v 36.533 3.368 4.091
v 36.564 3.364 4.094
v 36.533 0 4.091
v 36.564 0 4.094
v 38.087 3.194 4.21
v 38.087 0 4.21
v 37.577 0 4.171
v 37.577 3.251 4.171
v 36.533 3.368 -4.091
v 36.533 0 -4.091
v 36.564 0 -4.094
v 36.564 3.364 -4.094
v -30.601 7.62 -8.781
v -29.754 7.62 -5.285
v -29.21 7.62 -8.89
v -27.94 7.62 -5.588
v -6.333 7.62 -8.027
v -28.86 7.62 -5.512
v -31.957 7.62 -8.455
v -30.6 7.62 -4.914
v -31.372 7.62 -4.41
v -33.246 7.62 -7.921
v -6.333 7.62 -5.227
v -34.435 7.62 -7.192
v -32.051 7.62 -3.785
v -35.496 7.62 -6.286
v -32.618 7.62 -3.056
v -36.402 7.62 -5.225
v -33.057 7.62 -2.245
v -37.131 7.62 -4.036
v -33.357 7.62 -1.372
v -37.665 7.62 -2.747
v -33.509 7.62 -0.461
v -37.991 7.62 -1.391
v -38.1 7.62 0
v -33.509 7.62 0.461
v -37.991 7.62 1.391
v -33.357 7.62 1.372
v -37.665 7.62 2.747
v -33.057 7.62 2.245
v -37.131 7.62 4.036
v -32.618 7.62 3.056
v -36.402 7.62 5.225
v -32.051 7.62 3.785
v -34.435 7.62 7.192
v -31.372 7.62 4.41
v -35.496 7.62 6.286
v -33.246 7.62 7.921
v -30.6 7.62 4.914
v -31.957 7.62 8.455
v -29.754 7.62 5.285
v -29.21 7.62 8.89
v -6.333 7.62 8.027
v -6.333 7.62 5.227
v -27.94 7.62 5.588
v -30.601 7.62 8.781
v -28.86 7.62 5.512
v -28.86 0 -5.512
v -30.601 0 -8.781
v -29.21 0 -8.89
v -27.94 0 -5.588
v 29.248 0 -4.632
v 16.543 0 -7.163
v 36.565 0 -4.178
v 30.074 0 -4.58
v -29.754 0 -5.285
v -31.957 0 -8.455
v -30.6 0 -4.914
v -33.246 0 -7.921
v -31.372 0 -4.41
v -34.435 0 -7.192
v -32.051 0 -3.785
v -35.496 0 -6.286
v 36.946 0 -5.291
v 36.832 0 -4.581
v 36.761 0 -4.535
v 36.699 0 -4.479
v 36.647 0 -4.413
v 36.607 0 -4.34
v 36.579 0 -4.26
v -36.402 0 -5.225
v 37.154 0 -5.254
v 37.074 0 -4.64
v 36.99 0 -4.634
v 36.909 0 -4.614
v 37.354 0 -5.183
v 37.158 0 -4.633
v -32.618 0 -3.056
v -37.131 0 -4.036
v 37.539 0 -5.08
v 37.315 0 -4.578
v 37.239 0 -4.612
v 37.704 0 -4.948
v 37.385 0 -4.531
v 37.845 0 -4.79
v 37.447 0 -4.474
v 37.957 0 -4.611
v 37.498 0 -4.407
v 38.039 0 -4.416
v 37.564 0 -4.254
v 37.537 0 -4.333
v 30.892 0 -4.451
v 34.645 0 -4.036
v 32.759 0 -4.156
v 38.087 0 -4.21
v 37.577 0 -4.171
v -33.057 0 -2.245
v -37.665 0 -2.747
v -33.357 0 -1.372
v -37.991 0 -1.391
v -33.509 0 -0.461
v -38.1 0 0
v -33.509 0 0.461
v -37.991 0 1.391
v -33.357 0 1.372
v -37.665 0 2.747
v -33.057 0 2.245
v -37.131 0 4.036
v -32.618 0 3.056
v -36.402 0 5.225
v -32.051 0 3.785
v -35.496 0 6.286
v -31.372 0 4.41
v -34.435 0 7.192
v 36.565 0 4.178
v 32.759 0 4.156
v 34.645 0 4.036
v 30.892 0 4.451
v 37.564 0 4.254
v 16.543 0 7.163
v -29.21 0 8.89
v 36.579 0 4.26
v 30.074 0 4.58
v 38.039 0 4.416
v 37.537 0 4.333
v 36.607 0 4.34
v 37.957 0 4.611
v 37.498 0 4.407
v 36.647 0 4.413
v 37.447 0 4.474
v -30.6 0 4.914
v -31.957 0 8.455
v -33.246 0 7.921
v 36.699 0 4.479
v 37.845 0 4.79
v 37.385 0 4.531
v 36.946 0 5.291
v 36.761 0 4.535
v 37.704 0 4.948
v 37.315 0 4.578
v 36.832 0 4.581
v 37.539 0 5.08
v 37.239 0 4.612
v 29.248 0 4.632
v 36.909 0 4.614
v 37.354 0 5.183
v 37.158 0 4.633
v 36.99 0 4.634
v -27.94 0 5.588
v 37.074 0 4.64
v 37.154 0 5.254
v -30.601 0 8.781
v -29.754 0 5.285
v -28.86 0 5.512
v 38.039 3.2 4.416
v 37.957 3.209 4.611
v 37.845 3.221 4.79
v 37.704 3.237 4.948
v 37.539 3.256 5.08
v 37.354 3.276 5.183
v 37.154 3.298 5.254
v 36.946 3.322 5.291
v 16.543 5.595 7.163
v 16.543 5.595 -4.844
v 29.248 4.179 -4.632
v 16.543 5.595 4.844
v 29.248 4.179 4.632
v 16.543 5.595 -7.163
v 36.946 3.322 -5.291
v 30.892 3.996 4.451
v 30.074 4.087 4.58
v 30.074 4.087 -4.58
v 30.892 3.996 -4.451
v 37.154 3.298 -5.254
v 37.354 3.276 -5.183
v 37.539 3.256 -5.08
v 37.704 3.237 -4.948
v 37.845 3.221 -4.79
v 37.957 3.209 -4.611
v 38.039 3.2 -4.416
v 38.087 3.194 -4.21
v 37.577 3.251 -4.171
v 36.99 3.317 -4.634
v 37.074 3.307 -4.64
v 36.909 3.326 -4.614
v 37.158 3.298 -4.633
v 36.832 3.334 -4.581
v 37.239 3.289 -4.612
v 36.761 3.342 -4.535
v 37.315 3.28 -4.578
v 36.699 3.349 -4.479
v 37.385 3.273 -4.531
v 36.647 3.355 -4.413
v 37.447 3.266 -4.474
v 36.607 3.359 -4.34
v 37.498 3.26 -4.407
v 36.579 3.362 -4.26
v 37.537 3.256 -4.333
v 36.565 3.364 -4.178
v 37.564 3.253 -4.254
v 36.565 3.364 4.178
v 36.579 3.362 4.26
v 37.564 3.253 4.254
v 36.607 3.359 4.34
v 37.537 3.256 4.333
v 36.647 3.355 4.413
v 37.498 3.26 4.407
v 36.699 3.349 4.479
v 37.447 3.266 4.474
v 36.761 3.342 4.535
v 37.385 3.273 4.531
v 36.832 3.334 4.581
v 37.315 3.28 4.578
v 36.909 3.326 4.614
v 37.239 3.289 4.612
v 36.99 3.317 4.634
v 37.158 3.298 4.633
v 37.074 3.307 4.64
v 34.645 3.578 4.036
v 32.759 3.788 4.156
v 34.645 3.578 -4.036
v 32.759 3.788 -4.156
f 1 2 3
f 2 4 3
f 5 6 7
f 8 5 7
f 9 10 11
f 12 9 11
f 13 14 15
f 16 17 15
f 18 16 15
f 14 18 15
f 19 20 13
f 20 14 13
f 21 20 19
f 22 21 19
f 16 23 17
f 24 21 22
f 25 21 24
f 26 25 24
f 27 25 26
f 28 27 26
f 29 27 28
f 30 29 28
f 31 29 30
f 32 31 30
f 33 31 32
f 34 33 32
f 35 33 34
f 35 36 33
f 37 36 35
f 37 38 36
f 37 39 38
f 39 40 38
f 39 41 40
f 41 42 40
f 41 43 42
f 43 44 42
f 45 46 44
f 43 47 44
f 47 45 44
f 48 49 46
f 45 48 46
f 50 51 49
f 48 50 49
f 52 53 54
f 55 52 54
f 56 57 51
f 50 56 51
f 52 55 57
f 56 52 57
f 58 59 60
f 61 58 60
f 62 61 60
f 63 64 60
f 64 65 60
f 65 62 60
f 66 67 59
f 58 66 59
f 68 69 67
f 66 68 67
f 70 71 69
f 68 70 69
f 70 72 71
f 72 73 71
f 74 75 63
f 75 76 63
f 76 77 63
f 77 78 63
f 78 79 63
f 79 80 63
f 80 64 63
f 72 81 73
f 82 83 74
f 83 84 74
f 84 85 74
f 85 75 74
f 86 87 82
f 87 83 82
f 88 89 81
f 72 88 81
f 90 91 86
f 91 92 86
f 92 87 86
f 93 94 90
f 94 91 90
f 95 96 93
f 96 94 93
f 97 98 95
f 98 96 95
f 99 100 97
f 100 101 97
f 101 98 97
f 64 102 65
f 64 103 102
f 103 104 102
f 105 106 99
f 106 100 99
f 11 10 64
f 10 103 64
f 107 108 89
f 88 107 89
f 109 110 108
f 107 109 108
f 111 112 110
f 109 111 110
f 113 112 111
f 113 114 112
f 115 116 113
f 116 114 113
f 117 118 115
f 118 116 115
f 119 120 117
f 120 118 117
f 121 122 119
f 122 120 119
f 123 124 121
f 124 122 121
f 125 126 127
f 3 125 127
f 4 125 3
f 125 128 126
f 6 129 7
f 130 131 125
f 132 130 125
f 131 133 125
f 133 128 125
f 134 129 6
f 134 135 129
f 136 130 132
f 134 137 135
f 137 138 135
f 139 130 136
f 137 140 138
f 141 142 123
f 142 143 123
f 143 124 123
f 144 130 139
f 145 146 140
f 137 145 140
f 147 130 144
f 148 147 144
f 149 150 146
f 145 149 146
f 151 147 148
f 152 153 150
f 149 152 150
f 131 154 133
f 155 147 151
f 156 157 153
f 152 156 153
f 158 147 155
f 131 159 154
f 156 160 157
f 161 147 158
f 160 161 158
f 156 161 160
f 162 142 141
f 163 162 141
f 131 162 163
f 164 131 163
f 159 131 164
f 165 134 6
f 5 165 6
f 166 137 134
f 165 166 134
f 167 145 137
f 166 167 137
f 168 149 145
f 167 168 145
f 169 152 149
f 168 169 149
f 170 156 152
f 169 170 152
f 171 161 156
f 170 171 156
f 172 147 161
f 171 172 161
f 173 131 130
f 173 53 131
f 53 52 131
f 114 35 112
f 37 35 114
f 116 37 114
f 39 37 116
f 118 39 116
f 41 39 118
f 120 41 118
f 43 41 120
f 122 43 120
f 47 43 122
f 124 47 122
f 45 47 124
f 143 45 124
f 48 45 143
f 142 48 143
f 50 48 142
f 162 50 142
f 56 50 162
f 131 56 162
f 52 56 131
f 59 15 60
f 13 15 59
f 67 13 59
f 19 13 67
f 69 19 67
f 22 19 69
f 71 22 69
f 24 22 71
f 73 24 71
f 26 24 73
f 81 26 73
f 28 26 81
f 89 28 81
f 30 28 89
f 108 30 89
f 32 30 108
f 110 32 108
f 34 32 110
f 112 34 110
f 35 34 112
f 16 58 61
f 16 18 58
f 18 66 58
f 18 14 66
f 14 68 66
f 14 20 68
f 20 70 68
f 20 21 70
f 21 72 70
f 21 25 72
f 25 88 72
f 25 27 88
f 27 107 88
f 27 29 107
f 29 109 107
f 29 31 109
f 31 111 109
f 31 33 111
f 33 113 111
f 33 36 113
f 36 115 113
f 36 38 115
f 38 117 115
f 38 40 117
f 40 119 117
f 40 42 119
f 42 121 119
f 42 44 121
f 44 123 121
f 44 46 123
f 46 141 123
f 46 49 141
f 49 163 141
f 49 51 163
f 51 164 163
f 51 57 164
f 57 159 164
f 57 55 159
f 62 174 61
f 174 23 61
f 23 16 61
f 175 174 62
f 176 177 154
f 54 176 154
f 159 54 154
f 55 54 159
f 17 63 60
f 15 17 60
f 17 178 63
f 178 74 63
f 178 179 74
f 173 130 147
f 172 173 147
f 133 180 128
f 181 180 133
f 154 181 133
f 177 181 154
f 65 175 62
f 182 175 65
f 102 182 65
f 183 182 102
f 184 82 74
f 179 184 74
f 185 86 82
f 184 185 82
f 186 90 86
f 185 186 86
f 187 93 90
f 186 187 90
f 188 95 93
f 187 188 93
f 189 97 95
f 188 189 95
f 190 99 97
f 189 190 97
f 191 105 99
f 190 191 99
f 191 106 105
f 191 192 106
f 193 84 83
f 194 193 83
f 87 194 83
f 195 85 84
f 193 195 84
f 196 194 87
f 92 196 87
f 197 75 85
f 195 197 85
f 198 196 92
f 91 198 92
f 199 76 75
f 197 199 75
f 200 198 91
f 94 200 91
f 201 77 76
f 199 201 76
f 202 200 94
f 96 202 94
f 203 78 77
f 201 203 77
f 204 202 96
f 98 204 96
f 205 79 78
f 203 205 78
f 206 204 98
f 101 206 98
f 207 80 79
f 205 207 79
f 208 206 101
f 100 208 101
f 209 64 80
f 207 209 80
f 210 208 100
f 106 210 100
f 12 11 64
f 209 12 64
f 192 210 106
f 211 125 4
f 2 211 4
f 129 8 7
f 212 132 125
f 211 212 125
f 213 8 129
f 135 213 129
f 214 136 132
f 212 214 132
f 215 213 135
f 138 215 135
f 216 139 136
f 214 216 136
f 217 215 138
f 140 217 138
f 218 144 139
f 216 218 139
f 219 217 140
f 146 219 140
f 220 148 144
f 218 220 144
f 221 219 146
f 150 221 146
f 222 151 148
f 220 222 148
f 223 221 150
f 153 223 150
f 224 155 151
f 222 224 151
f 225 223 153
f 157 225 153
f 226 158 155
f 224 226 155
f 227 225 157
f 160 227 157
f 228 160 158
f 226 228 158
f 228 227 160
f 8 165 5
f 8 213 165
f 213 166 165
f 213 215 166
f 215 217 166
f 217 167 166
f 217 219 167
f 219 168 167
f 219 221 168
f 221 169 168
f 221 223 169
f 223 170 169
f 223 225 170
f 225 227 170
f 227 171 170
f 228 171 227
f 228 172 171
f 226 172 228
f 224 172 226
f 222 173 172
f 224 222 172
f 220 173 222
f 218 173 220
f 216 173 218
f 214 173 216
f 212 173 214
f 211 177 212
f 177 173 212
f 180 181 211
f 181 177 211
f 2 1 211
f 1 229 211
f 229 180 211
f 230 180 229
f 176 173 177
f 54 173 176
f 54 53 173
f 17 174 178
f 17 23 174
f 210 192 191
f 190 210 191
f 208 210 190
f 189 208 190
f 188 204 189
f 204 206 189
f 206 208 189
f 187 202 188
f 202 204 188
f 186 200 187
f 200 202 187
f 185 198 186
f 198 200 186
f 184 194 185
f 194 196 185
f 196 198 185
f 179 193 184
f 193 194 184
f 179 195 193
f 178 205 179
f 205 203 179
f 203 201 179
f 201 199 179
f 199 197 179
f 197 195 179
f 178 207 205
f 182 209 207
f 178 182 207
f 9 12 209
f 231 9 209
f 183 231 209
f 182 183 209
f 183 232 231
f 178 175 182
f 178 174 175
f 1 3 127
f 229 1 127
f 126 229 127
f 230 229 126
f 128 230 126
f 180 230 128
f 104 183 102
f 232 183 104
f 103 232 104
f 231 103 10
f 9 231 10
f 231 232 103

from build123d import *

# Parameters (mm, degrees)
SKETCH1_W                = 76.2
SKETCH1_H                = 17.78
BOSS_EXTRUDE1_DEPTH      = 7.62
FILLET1_R                = 8.89
CUT_EXTRUDE8_DEPTH       = 40.858581259
CUT_EXTRUDE9_DEPTH       = 40.858581259
CUT_EXTRUDE10_DEPTH      = 40.858581259
FILLET5_R                = 8.89
FILLET6_R                = 1.27
CUT_EXTRUDE11_DEPTH      = 40.858581259
SKETCH11_R               = 0.508
CUT_EXTRUDE12_DEPTH      = 40.858581259
CUT_EXTRUDE14_DEPTH      = 40.858581259
CUT_EXTRUDE14_DEPTH_BACK = 40.858581259
FILLET7_R                = 20.32


# Some blends are built 0.0001 mm under size
with BuildPart() as part:
    # Sketch1 → Boss-Extrude1 (new body)
    with BuildSketch(Plane(origin=(0, 0, 0), x_dir=(1, 0, 0), z_dir=(0, 1, 0))):
        Rectangle(SKETCH1_W, SKETCH1_H)
    extrude(amount=BOSS_EXTRUDE1_DEPTH)

    # Fillet1
    fillet1_edges = [part.edges().sort_by_distance(p)[0] for p in [
        (-38.1, 3.81, -8.89),
        (-38.1, 3.81, 8.89),
    ]]
    fillet(fillet1_edges, radius=FILLET1_R - 0.0001)  # a hair under: the kernel refuses the full size

    # Sketch2 → Cut-Extrude8 (cut, through all)
    with BuildSketch(Plane(origin=(0, 7.62, 0), x_dir=(1, 0, 0), z_dir=(0, 1, 0))):
        with BuildLine():
            Line((38.1, -3.81), (38.1, 3.81))
            Line((38.1, 3.81), (32.835440572, 3.81))
            Line((32.835440572, 3.81), (32.835440572, 4.572))
            Line((32.835440572, 4.572), (-27.94, 5.588))
            ThreePointArc((-27.94, 5.588), (-33.528, 0), (-27.94, -5.588))
            Line((-27.94, -5.588), (32.835440572, -4.572))
            Line((32.835440572, -4.572), (32.835440572, -3.81))
            Line((32.835440572, -3.81), (38.1, -3.81))
        make_face()
    extrude(amount=-CUT_EXTRUDE8_DEPTH, mode=Mode.SUBTRACT)

    # Sketch8 → Cut-Extrude9 (cut, through all)
    with BuildSketch(Plane(origin=(0, 7.62, 0), x_dir=(1, 0, 0), z_dir=(0, 1, 0))):
        Polygon((-29.21, 8.89), (38.1, 6.35), (38.1, 8.89), align=None)
    cut_extrude9 = extrude(amount=-CUT_EXTRUDE9_DEPTH, mode=Mode.SUBTRACT)

    # Mirror5: Cut-Extrude9 across plane
    add(cut_extrude9.mirror(Plane.XY), mode=Mode.SUBTRACT)

    # Sketch9 → Cut-Extrude10 (cut, through all)
    with BuildSketch(Plane(origin=(0, 7.62, 0), x_dir=(1, 0, 0), z_dir=(0, 1, 0))):
        Polygon((16.543360441, 7.163458097), (38.1, 5.185109732), (38.1, 6.35), align=None)
    cut_extrude10 = extrude(amount=-CUT_EXTRUDE10_DEPTH, mode=Mode.SUBTRACT)

    # Mirror6: Cut-Extrude10 across plane
    add(cut_extrude10.mirror(Plane.XY), mode=Mode.SUBTRACT)

    # Fillet5
    # the kernel refuses this fillet: 8.89 mm, written as the material it adds along each edge
    with BuildSketch(Plane(origin=(32.835440572, 7.62, 4.572), x_dir=(-0.999860295571869, 0, 0.01671494358156383), z_dir=(0, -1, 0))) as fillet5_piece_1:
        with BuildLine():
            CenterArc((3.588094431, 8.89), FILLET5_R, 246.106185647, 23.893814353)
            Line((-0.012736787, 0.761893545), (-0.084753411, 0.599331416))
            ThreePointArc((-0.084753411, 0.599331416), (-0.184143554, 0.377974856), (-0.177775161, -0.002971917))
            Line((-0.177775161, -0.002971917), (0, -0.1778))
            Line((0, -0.1778), (3.588094431, -0.1778))
            Line((3.588094431, -0.1778), (3.588094431, 0))
        make_face()
    extrude(amount=7.62)
    with BuildSketch(Plane(origin=(32.835440572, 7.62, -4.572), x_dir=(0, 0, 1), z_dir=(0, -1, 0))) as fillet5_piece_2:
        with BuildLine():
            CenterArc((8.828783232, 3.736189007), FILLET5_R, 180.957740323, 23.893814353)
            Line((-0.059974796, 3.587593158), (-0.237749957, 3.584621241))
            Line((-0.237749957, 3.584621241), (-0.177775161, -0.002971917))
            Line((-0.177775161, -0.002971917), (0, -0.1778))
            ThreePointArc((0, -0.1778), (0.381, -0.1778), (0.600664335, -0.07472378))
            Line((0.600664335, -0.07472378), (0.762, 0))
        make_face()
    extrude(amount=7.62)

    # Fillet6
    fillet6_edges = [part.edges().sort_by_distance(p)[0] for p in [
        (38.1, 3.81, -5.185109732),
        (38.1, 3.81, 5.185109732),
    ]]
    fillet(fillet6_edges, radius=FILLET6_R)

    # Sketch10 → Cut-Extrude11 (cut, through all)
    with BuildSketch(Plane(origin=(0, 7.62, 0), x_dir=(1, 0, 0), z_dir=(0, 1, 0))):
        Polygon((32.835440572, 3.81), (38.086687384, 4.209729588), (38.737760676, 3.81), align=None)
    cut_extrude11 = extrude(amount=-CUT_EXTRUDE11_DEPTH, mode=Mode.SUBTRACT)

    # Mirror7: Cut-Extrude11 across plane
    add(cut_extrude11.mirror(Plane.XY), mode=Mode.SUBTRACT)

    # Sketch11 → Cut-Extrude12 (cut, through all)
    with BuildSketch(Plane(origin=(0, 7.62, 0), x_dir=(1, 0, 0), z_dir=(0, 1, 0))):
        with Locations((37.070687384, 4.132390762)):
            Circle(SKETCH11_R)
    cut_extrude12 = extrude(amount=-CUT_EXTRUDE12_DEPTH, mode=Mode.SUBTRACT)

    # Mirror8: Cut-Extrude12 across plane
    add(cut_extrude12.mirror(Plane.XY), mode=Mode.SUBTRACT)

    # Sketch13 → Cut-Extrude14 (cut, two sides: drawn at the far end of the back side and taken through both)
    with BuildSketch(Plane.XY.offset(-CUT_EXTRUDE14_DEPTH_BACK)):
        Polygon((-6.333319779, 7.62), (16.543360441, 5.594868468), (38.086687384, 3.194451795), (38.086687384, 7.62), align=None)
    extrude(amount=CUT_EXTRUDE14_DEPTH + CUT_EXTRUDE14_DEPTH_BACK, mode=Mode.SUBTRACT)

    # Fillet7
    fillet7_edges = [part.edges().sort_by_distance(p)[0] for p in [
        (32.835440572, 1.889780071, -3.81),
        (32.835440572, 1.889780071, 3.81),
    ]]
    fillet(fillet7_edges, radius=FILLET7_R)


solid = part.part
